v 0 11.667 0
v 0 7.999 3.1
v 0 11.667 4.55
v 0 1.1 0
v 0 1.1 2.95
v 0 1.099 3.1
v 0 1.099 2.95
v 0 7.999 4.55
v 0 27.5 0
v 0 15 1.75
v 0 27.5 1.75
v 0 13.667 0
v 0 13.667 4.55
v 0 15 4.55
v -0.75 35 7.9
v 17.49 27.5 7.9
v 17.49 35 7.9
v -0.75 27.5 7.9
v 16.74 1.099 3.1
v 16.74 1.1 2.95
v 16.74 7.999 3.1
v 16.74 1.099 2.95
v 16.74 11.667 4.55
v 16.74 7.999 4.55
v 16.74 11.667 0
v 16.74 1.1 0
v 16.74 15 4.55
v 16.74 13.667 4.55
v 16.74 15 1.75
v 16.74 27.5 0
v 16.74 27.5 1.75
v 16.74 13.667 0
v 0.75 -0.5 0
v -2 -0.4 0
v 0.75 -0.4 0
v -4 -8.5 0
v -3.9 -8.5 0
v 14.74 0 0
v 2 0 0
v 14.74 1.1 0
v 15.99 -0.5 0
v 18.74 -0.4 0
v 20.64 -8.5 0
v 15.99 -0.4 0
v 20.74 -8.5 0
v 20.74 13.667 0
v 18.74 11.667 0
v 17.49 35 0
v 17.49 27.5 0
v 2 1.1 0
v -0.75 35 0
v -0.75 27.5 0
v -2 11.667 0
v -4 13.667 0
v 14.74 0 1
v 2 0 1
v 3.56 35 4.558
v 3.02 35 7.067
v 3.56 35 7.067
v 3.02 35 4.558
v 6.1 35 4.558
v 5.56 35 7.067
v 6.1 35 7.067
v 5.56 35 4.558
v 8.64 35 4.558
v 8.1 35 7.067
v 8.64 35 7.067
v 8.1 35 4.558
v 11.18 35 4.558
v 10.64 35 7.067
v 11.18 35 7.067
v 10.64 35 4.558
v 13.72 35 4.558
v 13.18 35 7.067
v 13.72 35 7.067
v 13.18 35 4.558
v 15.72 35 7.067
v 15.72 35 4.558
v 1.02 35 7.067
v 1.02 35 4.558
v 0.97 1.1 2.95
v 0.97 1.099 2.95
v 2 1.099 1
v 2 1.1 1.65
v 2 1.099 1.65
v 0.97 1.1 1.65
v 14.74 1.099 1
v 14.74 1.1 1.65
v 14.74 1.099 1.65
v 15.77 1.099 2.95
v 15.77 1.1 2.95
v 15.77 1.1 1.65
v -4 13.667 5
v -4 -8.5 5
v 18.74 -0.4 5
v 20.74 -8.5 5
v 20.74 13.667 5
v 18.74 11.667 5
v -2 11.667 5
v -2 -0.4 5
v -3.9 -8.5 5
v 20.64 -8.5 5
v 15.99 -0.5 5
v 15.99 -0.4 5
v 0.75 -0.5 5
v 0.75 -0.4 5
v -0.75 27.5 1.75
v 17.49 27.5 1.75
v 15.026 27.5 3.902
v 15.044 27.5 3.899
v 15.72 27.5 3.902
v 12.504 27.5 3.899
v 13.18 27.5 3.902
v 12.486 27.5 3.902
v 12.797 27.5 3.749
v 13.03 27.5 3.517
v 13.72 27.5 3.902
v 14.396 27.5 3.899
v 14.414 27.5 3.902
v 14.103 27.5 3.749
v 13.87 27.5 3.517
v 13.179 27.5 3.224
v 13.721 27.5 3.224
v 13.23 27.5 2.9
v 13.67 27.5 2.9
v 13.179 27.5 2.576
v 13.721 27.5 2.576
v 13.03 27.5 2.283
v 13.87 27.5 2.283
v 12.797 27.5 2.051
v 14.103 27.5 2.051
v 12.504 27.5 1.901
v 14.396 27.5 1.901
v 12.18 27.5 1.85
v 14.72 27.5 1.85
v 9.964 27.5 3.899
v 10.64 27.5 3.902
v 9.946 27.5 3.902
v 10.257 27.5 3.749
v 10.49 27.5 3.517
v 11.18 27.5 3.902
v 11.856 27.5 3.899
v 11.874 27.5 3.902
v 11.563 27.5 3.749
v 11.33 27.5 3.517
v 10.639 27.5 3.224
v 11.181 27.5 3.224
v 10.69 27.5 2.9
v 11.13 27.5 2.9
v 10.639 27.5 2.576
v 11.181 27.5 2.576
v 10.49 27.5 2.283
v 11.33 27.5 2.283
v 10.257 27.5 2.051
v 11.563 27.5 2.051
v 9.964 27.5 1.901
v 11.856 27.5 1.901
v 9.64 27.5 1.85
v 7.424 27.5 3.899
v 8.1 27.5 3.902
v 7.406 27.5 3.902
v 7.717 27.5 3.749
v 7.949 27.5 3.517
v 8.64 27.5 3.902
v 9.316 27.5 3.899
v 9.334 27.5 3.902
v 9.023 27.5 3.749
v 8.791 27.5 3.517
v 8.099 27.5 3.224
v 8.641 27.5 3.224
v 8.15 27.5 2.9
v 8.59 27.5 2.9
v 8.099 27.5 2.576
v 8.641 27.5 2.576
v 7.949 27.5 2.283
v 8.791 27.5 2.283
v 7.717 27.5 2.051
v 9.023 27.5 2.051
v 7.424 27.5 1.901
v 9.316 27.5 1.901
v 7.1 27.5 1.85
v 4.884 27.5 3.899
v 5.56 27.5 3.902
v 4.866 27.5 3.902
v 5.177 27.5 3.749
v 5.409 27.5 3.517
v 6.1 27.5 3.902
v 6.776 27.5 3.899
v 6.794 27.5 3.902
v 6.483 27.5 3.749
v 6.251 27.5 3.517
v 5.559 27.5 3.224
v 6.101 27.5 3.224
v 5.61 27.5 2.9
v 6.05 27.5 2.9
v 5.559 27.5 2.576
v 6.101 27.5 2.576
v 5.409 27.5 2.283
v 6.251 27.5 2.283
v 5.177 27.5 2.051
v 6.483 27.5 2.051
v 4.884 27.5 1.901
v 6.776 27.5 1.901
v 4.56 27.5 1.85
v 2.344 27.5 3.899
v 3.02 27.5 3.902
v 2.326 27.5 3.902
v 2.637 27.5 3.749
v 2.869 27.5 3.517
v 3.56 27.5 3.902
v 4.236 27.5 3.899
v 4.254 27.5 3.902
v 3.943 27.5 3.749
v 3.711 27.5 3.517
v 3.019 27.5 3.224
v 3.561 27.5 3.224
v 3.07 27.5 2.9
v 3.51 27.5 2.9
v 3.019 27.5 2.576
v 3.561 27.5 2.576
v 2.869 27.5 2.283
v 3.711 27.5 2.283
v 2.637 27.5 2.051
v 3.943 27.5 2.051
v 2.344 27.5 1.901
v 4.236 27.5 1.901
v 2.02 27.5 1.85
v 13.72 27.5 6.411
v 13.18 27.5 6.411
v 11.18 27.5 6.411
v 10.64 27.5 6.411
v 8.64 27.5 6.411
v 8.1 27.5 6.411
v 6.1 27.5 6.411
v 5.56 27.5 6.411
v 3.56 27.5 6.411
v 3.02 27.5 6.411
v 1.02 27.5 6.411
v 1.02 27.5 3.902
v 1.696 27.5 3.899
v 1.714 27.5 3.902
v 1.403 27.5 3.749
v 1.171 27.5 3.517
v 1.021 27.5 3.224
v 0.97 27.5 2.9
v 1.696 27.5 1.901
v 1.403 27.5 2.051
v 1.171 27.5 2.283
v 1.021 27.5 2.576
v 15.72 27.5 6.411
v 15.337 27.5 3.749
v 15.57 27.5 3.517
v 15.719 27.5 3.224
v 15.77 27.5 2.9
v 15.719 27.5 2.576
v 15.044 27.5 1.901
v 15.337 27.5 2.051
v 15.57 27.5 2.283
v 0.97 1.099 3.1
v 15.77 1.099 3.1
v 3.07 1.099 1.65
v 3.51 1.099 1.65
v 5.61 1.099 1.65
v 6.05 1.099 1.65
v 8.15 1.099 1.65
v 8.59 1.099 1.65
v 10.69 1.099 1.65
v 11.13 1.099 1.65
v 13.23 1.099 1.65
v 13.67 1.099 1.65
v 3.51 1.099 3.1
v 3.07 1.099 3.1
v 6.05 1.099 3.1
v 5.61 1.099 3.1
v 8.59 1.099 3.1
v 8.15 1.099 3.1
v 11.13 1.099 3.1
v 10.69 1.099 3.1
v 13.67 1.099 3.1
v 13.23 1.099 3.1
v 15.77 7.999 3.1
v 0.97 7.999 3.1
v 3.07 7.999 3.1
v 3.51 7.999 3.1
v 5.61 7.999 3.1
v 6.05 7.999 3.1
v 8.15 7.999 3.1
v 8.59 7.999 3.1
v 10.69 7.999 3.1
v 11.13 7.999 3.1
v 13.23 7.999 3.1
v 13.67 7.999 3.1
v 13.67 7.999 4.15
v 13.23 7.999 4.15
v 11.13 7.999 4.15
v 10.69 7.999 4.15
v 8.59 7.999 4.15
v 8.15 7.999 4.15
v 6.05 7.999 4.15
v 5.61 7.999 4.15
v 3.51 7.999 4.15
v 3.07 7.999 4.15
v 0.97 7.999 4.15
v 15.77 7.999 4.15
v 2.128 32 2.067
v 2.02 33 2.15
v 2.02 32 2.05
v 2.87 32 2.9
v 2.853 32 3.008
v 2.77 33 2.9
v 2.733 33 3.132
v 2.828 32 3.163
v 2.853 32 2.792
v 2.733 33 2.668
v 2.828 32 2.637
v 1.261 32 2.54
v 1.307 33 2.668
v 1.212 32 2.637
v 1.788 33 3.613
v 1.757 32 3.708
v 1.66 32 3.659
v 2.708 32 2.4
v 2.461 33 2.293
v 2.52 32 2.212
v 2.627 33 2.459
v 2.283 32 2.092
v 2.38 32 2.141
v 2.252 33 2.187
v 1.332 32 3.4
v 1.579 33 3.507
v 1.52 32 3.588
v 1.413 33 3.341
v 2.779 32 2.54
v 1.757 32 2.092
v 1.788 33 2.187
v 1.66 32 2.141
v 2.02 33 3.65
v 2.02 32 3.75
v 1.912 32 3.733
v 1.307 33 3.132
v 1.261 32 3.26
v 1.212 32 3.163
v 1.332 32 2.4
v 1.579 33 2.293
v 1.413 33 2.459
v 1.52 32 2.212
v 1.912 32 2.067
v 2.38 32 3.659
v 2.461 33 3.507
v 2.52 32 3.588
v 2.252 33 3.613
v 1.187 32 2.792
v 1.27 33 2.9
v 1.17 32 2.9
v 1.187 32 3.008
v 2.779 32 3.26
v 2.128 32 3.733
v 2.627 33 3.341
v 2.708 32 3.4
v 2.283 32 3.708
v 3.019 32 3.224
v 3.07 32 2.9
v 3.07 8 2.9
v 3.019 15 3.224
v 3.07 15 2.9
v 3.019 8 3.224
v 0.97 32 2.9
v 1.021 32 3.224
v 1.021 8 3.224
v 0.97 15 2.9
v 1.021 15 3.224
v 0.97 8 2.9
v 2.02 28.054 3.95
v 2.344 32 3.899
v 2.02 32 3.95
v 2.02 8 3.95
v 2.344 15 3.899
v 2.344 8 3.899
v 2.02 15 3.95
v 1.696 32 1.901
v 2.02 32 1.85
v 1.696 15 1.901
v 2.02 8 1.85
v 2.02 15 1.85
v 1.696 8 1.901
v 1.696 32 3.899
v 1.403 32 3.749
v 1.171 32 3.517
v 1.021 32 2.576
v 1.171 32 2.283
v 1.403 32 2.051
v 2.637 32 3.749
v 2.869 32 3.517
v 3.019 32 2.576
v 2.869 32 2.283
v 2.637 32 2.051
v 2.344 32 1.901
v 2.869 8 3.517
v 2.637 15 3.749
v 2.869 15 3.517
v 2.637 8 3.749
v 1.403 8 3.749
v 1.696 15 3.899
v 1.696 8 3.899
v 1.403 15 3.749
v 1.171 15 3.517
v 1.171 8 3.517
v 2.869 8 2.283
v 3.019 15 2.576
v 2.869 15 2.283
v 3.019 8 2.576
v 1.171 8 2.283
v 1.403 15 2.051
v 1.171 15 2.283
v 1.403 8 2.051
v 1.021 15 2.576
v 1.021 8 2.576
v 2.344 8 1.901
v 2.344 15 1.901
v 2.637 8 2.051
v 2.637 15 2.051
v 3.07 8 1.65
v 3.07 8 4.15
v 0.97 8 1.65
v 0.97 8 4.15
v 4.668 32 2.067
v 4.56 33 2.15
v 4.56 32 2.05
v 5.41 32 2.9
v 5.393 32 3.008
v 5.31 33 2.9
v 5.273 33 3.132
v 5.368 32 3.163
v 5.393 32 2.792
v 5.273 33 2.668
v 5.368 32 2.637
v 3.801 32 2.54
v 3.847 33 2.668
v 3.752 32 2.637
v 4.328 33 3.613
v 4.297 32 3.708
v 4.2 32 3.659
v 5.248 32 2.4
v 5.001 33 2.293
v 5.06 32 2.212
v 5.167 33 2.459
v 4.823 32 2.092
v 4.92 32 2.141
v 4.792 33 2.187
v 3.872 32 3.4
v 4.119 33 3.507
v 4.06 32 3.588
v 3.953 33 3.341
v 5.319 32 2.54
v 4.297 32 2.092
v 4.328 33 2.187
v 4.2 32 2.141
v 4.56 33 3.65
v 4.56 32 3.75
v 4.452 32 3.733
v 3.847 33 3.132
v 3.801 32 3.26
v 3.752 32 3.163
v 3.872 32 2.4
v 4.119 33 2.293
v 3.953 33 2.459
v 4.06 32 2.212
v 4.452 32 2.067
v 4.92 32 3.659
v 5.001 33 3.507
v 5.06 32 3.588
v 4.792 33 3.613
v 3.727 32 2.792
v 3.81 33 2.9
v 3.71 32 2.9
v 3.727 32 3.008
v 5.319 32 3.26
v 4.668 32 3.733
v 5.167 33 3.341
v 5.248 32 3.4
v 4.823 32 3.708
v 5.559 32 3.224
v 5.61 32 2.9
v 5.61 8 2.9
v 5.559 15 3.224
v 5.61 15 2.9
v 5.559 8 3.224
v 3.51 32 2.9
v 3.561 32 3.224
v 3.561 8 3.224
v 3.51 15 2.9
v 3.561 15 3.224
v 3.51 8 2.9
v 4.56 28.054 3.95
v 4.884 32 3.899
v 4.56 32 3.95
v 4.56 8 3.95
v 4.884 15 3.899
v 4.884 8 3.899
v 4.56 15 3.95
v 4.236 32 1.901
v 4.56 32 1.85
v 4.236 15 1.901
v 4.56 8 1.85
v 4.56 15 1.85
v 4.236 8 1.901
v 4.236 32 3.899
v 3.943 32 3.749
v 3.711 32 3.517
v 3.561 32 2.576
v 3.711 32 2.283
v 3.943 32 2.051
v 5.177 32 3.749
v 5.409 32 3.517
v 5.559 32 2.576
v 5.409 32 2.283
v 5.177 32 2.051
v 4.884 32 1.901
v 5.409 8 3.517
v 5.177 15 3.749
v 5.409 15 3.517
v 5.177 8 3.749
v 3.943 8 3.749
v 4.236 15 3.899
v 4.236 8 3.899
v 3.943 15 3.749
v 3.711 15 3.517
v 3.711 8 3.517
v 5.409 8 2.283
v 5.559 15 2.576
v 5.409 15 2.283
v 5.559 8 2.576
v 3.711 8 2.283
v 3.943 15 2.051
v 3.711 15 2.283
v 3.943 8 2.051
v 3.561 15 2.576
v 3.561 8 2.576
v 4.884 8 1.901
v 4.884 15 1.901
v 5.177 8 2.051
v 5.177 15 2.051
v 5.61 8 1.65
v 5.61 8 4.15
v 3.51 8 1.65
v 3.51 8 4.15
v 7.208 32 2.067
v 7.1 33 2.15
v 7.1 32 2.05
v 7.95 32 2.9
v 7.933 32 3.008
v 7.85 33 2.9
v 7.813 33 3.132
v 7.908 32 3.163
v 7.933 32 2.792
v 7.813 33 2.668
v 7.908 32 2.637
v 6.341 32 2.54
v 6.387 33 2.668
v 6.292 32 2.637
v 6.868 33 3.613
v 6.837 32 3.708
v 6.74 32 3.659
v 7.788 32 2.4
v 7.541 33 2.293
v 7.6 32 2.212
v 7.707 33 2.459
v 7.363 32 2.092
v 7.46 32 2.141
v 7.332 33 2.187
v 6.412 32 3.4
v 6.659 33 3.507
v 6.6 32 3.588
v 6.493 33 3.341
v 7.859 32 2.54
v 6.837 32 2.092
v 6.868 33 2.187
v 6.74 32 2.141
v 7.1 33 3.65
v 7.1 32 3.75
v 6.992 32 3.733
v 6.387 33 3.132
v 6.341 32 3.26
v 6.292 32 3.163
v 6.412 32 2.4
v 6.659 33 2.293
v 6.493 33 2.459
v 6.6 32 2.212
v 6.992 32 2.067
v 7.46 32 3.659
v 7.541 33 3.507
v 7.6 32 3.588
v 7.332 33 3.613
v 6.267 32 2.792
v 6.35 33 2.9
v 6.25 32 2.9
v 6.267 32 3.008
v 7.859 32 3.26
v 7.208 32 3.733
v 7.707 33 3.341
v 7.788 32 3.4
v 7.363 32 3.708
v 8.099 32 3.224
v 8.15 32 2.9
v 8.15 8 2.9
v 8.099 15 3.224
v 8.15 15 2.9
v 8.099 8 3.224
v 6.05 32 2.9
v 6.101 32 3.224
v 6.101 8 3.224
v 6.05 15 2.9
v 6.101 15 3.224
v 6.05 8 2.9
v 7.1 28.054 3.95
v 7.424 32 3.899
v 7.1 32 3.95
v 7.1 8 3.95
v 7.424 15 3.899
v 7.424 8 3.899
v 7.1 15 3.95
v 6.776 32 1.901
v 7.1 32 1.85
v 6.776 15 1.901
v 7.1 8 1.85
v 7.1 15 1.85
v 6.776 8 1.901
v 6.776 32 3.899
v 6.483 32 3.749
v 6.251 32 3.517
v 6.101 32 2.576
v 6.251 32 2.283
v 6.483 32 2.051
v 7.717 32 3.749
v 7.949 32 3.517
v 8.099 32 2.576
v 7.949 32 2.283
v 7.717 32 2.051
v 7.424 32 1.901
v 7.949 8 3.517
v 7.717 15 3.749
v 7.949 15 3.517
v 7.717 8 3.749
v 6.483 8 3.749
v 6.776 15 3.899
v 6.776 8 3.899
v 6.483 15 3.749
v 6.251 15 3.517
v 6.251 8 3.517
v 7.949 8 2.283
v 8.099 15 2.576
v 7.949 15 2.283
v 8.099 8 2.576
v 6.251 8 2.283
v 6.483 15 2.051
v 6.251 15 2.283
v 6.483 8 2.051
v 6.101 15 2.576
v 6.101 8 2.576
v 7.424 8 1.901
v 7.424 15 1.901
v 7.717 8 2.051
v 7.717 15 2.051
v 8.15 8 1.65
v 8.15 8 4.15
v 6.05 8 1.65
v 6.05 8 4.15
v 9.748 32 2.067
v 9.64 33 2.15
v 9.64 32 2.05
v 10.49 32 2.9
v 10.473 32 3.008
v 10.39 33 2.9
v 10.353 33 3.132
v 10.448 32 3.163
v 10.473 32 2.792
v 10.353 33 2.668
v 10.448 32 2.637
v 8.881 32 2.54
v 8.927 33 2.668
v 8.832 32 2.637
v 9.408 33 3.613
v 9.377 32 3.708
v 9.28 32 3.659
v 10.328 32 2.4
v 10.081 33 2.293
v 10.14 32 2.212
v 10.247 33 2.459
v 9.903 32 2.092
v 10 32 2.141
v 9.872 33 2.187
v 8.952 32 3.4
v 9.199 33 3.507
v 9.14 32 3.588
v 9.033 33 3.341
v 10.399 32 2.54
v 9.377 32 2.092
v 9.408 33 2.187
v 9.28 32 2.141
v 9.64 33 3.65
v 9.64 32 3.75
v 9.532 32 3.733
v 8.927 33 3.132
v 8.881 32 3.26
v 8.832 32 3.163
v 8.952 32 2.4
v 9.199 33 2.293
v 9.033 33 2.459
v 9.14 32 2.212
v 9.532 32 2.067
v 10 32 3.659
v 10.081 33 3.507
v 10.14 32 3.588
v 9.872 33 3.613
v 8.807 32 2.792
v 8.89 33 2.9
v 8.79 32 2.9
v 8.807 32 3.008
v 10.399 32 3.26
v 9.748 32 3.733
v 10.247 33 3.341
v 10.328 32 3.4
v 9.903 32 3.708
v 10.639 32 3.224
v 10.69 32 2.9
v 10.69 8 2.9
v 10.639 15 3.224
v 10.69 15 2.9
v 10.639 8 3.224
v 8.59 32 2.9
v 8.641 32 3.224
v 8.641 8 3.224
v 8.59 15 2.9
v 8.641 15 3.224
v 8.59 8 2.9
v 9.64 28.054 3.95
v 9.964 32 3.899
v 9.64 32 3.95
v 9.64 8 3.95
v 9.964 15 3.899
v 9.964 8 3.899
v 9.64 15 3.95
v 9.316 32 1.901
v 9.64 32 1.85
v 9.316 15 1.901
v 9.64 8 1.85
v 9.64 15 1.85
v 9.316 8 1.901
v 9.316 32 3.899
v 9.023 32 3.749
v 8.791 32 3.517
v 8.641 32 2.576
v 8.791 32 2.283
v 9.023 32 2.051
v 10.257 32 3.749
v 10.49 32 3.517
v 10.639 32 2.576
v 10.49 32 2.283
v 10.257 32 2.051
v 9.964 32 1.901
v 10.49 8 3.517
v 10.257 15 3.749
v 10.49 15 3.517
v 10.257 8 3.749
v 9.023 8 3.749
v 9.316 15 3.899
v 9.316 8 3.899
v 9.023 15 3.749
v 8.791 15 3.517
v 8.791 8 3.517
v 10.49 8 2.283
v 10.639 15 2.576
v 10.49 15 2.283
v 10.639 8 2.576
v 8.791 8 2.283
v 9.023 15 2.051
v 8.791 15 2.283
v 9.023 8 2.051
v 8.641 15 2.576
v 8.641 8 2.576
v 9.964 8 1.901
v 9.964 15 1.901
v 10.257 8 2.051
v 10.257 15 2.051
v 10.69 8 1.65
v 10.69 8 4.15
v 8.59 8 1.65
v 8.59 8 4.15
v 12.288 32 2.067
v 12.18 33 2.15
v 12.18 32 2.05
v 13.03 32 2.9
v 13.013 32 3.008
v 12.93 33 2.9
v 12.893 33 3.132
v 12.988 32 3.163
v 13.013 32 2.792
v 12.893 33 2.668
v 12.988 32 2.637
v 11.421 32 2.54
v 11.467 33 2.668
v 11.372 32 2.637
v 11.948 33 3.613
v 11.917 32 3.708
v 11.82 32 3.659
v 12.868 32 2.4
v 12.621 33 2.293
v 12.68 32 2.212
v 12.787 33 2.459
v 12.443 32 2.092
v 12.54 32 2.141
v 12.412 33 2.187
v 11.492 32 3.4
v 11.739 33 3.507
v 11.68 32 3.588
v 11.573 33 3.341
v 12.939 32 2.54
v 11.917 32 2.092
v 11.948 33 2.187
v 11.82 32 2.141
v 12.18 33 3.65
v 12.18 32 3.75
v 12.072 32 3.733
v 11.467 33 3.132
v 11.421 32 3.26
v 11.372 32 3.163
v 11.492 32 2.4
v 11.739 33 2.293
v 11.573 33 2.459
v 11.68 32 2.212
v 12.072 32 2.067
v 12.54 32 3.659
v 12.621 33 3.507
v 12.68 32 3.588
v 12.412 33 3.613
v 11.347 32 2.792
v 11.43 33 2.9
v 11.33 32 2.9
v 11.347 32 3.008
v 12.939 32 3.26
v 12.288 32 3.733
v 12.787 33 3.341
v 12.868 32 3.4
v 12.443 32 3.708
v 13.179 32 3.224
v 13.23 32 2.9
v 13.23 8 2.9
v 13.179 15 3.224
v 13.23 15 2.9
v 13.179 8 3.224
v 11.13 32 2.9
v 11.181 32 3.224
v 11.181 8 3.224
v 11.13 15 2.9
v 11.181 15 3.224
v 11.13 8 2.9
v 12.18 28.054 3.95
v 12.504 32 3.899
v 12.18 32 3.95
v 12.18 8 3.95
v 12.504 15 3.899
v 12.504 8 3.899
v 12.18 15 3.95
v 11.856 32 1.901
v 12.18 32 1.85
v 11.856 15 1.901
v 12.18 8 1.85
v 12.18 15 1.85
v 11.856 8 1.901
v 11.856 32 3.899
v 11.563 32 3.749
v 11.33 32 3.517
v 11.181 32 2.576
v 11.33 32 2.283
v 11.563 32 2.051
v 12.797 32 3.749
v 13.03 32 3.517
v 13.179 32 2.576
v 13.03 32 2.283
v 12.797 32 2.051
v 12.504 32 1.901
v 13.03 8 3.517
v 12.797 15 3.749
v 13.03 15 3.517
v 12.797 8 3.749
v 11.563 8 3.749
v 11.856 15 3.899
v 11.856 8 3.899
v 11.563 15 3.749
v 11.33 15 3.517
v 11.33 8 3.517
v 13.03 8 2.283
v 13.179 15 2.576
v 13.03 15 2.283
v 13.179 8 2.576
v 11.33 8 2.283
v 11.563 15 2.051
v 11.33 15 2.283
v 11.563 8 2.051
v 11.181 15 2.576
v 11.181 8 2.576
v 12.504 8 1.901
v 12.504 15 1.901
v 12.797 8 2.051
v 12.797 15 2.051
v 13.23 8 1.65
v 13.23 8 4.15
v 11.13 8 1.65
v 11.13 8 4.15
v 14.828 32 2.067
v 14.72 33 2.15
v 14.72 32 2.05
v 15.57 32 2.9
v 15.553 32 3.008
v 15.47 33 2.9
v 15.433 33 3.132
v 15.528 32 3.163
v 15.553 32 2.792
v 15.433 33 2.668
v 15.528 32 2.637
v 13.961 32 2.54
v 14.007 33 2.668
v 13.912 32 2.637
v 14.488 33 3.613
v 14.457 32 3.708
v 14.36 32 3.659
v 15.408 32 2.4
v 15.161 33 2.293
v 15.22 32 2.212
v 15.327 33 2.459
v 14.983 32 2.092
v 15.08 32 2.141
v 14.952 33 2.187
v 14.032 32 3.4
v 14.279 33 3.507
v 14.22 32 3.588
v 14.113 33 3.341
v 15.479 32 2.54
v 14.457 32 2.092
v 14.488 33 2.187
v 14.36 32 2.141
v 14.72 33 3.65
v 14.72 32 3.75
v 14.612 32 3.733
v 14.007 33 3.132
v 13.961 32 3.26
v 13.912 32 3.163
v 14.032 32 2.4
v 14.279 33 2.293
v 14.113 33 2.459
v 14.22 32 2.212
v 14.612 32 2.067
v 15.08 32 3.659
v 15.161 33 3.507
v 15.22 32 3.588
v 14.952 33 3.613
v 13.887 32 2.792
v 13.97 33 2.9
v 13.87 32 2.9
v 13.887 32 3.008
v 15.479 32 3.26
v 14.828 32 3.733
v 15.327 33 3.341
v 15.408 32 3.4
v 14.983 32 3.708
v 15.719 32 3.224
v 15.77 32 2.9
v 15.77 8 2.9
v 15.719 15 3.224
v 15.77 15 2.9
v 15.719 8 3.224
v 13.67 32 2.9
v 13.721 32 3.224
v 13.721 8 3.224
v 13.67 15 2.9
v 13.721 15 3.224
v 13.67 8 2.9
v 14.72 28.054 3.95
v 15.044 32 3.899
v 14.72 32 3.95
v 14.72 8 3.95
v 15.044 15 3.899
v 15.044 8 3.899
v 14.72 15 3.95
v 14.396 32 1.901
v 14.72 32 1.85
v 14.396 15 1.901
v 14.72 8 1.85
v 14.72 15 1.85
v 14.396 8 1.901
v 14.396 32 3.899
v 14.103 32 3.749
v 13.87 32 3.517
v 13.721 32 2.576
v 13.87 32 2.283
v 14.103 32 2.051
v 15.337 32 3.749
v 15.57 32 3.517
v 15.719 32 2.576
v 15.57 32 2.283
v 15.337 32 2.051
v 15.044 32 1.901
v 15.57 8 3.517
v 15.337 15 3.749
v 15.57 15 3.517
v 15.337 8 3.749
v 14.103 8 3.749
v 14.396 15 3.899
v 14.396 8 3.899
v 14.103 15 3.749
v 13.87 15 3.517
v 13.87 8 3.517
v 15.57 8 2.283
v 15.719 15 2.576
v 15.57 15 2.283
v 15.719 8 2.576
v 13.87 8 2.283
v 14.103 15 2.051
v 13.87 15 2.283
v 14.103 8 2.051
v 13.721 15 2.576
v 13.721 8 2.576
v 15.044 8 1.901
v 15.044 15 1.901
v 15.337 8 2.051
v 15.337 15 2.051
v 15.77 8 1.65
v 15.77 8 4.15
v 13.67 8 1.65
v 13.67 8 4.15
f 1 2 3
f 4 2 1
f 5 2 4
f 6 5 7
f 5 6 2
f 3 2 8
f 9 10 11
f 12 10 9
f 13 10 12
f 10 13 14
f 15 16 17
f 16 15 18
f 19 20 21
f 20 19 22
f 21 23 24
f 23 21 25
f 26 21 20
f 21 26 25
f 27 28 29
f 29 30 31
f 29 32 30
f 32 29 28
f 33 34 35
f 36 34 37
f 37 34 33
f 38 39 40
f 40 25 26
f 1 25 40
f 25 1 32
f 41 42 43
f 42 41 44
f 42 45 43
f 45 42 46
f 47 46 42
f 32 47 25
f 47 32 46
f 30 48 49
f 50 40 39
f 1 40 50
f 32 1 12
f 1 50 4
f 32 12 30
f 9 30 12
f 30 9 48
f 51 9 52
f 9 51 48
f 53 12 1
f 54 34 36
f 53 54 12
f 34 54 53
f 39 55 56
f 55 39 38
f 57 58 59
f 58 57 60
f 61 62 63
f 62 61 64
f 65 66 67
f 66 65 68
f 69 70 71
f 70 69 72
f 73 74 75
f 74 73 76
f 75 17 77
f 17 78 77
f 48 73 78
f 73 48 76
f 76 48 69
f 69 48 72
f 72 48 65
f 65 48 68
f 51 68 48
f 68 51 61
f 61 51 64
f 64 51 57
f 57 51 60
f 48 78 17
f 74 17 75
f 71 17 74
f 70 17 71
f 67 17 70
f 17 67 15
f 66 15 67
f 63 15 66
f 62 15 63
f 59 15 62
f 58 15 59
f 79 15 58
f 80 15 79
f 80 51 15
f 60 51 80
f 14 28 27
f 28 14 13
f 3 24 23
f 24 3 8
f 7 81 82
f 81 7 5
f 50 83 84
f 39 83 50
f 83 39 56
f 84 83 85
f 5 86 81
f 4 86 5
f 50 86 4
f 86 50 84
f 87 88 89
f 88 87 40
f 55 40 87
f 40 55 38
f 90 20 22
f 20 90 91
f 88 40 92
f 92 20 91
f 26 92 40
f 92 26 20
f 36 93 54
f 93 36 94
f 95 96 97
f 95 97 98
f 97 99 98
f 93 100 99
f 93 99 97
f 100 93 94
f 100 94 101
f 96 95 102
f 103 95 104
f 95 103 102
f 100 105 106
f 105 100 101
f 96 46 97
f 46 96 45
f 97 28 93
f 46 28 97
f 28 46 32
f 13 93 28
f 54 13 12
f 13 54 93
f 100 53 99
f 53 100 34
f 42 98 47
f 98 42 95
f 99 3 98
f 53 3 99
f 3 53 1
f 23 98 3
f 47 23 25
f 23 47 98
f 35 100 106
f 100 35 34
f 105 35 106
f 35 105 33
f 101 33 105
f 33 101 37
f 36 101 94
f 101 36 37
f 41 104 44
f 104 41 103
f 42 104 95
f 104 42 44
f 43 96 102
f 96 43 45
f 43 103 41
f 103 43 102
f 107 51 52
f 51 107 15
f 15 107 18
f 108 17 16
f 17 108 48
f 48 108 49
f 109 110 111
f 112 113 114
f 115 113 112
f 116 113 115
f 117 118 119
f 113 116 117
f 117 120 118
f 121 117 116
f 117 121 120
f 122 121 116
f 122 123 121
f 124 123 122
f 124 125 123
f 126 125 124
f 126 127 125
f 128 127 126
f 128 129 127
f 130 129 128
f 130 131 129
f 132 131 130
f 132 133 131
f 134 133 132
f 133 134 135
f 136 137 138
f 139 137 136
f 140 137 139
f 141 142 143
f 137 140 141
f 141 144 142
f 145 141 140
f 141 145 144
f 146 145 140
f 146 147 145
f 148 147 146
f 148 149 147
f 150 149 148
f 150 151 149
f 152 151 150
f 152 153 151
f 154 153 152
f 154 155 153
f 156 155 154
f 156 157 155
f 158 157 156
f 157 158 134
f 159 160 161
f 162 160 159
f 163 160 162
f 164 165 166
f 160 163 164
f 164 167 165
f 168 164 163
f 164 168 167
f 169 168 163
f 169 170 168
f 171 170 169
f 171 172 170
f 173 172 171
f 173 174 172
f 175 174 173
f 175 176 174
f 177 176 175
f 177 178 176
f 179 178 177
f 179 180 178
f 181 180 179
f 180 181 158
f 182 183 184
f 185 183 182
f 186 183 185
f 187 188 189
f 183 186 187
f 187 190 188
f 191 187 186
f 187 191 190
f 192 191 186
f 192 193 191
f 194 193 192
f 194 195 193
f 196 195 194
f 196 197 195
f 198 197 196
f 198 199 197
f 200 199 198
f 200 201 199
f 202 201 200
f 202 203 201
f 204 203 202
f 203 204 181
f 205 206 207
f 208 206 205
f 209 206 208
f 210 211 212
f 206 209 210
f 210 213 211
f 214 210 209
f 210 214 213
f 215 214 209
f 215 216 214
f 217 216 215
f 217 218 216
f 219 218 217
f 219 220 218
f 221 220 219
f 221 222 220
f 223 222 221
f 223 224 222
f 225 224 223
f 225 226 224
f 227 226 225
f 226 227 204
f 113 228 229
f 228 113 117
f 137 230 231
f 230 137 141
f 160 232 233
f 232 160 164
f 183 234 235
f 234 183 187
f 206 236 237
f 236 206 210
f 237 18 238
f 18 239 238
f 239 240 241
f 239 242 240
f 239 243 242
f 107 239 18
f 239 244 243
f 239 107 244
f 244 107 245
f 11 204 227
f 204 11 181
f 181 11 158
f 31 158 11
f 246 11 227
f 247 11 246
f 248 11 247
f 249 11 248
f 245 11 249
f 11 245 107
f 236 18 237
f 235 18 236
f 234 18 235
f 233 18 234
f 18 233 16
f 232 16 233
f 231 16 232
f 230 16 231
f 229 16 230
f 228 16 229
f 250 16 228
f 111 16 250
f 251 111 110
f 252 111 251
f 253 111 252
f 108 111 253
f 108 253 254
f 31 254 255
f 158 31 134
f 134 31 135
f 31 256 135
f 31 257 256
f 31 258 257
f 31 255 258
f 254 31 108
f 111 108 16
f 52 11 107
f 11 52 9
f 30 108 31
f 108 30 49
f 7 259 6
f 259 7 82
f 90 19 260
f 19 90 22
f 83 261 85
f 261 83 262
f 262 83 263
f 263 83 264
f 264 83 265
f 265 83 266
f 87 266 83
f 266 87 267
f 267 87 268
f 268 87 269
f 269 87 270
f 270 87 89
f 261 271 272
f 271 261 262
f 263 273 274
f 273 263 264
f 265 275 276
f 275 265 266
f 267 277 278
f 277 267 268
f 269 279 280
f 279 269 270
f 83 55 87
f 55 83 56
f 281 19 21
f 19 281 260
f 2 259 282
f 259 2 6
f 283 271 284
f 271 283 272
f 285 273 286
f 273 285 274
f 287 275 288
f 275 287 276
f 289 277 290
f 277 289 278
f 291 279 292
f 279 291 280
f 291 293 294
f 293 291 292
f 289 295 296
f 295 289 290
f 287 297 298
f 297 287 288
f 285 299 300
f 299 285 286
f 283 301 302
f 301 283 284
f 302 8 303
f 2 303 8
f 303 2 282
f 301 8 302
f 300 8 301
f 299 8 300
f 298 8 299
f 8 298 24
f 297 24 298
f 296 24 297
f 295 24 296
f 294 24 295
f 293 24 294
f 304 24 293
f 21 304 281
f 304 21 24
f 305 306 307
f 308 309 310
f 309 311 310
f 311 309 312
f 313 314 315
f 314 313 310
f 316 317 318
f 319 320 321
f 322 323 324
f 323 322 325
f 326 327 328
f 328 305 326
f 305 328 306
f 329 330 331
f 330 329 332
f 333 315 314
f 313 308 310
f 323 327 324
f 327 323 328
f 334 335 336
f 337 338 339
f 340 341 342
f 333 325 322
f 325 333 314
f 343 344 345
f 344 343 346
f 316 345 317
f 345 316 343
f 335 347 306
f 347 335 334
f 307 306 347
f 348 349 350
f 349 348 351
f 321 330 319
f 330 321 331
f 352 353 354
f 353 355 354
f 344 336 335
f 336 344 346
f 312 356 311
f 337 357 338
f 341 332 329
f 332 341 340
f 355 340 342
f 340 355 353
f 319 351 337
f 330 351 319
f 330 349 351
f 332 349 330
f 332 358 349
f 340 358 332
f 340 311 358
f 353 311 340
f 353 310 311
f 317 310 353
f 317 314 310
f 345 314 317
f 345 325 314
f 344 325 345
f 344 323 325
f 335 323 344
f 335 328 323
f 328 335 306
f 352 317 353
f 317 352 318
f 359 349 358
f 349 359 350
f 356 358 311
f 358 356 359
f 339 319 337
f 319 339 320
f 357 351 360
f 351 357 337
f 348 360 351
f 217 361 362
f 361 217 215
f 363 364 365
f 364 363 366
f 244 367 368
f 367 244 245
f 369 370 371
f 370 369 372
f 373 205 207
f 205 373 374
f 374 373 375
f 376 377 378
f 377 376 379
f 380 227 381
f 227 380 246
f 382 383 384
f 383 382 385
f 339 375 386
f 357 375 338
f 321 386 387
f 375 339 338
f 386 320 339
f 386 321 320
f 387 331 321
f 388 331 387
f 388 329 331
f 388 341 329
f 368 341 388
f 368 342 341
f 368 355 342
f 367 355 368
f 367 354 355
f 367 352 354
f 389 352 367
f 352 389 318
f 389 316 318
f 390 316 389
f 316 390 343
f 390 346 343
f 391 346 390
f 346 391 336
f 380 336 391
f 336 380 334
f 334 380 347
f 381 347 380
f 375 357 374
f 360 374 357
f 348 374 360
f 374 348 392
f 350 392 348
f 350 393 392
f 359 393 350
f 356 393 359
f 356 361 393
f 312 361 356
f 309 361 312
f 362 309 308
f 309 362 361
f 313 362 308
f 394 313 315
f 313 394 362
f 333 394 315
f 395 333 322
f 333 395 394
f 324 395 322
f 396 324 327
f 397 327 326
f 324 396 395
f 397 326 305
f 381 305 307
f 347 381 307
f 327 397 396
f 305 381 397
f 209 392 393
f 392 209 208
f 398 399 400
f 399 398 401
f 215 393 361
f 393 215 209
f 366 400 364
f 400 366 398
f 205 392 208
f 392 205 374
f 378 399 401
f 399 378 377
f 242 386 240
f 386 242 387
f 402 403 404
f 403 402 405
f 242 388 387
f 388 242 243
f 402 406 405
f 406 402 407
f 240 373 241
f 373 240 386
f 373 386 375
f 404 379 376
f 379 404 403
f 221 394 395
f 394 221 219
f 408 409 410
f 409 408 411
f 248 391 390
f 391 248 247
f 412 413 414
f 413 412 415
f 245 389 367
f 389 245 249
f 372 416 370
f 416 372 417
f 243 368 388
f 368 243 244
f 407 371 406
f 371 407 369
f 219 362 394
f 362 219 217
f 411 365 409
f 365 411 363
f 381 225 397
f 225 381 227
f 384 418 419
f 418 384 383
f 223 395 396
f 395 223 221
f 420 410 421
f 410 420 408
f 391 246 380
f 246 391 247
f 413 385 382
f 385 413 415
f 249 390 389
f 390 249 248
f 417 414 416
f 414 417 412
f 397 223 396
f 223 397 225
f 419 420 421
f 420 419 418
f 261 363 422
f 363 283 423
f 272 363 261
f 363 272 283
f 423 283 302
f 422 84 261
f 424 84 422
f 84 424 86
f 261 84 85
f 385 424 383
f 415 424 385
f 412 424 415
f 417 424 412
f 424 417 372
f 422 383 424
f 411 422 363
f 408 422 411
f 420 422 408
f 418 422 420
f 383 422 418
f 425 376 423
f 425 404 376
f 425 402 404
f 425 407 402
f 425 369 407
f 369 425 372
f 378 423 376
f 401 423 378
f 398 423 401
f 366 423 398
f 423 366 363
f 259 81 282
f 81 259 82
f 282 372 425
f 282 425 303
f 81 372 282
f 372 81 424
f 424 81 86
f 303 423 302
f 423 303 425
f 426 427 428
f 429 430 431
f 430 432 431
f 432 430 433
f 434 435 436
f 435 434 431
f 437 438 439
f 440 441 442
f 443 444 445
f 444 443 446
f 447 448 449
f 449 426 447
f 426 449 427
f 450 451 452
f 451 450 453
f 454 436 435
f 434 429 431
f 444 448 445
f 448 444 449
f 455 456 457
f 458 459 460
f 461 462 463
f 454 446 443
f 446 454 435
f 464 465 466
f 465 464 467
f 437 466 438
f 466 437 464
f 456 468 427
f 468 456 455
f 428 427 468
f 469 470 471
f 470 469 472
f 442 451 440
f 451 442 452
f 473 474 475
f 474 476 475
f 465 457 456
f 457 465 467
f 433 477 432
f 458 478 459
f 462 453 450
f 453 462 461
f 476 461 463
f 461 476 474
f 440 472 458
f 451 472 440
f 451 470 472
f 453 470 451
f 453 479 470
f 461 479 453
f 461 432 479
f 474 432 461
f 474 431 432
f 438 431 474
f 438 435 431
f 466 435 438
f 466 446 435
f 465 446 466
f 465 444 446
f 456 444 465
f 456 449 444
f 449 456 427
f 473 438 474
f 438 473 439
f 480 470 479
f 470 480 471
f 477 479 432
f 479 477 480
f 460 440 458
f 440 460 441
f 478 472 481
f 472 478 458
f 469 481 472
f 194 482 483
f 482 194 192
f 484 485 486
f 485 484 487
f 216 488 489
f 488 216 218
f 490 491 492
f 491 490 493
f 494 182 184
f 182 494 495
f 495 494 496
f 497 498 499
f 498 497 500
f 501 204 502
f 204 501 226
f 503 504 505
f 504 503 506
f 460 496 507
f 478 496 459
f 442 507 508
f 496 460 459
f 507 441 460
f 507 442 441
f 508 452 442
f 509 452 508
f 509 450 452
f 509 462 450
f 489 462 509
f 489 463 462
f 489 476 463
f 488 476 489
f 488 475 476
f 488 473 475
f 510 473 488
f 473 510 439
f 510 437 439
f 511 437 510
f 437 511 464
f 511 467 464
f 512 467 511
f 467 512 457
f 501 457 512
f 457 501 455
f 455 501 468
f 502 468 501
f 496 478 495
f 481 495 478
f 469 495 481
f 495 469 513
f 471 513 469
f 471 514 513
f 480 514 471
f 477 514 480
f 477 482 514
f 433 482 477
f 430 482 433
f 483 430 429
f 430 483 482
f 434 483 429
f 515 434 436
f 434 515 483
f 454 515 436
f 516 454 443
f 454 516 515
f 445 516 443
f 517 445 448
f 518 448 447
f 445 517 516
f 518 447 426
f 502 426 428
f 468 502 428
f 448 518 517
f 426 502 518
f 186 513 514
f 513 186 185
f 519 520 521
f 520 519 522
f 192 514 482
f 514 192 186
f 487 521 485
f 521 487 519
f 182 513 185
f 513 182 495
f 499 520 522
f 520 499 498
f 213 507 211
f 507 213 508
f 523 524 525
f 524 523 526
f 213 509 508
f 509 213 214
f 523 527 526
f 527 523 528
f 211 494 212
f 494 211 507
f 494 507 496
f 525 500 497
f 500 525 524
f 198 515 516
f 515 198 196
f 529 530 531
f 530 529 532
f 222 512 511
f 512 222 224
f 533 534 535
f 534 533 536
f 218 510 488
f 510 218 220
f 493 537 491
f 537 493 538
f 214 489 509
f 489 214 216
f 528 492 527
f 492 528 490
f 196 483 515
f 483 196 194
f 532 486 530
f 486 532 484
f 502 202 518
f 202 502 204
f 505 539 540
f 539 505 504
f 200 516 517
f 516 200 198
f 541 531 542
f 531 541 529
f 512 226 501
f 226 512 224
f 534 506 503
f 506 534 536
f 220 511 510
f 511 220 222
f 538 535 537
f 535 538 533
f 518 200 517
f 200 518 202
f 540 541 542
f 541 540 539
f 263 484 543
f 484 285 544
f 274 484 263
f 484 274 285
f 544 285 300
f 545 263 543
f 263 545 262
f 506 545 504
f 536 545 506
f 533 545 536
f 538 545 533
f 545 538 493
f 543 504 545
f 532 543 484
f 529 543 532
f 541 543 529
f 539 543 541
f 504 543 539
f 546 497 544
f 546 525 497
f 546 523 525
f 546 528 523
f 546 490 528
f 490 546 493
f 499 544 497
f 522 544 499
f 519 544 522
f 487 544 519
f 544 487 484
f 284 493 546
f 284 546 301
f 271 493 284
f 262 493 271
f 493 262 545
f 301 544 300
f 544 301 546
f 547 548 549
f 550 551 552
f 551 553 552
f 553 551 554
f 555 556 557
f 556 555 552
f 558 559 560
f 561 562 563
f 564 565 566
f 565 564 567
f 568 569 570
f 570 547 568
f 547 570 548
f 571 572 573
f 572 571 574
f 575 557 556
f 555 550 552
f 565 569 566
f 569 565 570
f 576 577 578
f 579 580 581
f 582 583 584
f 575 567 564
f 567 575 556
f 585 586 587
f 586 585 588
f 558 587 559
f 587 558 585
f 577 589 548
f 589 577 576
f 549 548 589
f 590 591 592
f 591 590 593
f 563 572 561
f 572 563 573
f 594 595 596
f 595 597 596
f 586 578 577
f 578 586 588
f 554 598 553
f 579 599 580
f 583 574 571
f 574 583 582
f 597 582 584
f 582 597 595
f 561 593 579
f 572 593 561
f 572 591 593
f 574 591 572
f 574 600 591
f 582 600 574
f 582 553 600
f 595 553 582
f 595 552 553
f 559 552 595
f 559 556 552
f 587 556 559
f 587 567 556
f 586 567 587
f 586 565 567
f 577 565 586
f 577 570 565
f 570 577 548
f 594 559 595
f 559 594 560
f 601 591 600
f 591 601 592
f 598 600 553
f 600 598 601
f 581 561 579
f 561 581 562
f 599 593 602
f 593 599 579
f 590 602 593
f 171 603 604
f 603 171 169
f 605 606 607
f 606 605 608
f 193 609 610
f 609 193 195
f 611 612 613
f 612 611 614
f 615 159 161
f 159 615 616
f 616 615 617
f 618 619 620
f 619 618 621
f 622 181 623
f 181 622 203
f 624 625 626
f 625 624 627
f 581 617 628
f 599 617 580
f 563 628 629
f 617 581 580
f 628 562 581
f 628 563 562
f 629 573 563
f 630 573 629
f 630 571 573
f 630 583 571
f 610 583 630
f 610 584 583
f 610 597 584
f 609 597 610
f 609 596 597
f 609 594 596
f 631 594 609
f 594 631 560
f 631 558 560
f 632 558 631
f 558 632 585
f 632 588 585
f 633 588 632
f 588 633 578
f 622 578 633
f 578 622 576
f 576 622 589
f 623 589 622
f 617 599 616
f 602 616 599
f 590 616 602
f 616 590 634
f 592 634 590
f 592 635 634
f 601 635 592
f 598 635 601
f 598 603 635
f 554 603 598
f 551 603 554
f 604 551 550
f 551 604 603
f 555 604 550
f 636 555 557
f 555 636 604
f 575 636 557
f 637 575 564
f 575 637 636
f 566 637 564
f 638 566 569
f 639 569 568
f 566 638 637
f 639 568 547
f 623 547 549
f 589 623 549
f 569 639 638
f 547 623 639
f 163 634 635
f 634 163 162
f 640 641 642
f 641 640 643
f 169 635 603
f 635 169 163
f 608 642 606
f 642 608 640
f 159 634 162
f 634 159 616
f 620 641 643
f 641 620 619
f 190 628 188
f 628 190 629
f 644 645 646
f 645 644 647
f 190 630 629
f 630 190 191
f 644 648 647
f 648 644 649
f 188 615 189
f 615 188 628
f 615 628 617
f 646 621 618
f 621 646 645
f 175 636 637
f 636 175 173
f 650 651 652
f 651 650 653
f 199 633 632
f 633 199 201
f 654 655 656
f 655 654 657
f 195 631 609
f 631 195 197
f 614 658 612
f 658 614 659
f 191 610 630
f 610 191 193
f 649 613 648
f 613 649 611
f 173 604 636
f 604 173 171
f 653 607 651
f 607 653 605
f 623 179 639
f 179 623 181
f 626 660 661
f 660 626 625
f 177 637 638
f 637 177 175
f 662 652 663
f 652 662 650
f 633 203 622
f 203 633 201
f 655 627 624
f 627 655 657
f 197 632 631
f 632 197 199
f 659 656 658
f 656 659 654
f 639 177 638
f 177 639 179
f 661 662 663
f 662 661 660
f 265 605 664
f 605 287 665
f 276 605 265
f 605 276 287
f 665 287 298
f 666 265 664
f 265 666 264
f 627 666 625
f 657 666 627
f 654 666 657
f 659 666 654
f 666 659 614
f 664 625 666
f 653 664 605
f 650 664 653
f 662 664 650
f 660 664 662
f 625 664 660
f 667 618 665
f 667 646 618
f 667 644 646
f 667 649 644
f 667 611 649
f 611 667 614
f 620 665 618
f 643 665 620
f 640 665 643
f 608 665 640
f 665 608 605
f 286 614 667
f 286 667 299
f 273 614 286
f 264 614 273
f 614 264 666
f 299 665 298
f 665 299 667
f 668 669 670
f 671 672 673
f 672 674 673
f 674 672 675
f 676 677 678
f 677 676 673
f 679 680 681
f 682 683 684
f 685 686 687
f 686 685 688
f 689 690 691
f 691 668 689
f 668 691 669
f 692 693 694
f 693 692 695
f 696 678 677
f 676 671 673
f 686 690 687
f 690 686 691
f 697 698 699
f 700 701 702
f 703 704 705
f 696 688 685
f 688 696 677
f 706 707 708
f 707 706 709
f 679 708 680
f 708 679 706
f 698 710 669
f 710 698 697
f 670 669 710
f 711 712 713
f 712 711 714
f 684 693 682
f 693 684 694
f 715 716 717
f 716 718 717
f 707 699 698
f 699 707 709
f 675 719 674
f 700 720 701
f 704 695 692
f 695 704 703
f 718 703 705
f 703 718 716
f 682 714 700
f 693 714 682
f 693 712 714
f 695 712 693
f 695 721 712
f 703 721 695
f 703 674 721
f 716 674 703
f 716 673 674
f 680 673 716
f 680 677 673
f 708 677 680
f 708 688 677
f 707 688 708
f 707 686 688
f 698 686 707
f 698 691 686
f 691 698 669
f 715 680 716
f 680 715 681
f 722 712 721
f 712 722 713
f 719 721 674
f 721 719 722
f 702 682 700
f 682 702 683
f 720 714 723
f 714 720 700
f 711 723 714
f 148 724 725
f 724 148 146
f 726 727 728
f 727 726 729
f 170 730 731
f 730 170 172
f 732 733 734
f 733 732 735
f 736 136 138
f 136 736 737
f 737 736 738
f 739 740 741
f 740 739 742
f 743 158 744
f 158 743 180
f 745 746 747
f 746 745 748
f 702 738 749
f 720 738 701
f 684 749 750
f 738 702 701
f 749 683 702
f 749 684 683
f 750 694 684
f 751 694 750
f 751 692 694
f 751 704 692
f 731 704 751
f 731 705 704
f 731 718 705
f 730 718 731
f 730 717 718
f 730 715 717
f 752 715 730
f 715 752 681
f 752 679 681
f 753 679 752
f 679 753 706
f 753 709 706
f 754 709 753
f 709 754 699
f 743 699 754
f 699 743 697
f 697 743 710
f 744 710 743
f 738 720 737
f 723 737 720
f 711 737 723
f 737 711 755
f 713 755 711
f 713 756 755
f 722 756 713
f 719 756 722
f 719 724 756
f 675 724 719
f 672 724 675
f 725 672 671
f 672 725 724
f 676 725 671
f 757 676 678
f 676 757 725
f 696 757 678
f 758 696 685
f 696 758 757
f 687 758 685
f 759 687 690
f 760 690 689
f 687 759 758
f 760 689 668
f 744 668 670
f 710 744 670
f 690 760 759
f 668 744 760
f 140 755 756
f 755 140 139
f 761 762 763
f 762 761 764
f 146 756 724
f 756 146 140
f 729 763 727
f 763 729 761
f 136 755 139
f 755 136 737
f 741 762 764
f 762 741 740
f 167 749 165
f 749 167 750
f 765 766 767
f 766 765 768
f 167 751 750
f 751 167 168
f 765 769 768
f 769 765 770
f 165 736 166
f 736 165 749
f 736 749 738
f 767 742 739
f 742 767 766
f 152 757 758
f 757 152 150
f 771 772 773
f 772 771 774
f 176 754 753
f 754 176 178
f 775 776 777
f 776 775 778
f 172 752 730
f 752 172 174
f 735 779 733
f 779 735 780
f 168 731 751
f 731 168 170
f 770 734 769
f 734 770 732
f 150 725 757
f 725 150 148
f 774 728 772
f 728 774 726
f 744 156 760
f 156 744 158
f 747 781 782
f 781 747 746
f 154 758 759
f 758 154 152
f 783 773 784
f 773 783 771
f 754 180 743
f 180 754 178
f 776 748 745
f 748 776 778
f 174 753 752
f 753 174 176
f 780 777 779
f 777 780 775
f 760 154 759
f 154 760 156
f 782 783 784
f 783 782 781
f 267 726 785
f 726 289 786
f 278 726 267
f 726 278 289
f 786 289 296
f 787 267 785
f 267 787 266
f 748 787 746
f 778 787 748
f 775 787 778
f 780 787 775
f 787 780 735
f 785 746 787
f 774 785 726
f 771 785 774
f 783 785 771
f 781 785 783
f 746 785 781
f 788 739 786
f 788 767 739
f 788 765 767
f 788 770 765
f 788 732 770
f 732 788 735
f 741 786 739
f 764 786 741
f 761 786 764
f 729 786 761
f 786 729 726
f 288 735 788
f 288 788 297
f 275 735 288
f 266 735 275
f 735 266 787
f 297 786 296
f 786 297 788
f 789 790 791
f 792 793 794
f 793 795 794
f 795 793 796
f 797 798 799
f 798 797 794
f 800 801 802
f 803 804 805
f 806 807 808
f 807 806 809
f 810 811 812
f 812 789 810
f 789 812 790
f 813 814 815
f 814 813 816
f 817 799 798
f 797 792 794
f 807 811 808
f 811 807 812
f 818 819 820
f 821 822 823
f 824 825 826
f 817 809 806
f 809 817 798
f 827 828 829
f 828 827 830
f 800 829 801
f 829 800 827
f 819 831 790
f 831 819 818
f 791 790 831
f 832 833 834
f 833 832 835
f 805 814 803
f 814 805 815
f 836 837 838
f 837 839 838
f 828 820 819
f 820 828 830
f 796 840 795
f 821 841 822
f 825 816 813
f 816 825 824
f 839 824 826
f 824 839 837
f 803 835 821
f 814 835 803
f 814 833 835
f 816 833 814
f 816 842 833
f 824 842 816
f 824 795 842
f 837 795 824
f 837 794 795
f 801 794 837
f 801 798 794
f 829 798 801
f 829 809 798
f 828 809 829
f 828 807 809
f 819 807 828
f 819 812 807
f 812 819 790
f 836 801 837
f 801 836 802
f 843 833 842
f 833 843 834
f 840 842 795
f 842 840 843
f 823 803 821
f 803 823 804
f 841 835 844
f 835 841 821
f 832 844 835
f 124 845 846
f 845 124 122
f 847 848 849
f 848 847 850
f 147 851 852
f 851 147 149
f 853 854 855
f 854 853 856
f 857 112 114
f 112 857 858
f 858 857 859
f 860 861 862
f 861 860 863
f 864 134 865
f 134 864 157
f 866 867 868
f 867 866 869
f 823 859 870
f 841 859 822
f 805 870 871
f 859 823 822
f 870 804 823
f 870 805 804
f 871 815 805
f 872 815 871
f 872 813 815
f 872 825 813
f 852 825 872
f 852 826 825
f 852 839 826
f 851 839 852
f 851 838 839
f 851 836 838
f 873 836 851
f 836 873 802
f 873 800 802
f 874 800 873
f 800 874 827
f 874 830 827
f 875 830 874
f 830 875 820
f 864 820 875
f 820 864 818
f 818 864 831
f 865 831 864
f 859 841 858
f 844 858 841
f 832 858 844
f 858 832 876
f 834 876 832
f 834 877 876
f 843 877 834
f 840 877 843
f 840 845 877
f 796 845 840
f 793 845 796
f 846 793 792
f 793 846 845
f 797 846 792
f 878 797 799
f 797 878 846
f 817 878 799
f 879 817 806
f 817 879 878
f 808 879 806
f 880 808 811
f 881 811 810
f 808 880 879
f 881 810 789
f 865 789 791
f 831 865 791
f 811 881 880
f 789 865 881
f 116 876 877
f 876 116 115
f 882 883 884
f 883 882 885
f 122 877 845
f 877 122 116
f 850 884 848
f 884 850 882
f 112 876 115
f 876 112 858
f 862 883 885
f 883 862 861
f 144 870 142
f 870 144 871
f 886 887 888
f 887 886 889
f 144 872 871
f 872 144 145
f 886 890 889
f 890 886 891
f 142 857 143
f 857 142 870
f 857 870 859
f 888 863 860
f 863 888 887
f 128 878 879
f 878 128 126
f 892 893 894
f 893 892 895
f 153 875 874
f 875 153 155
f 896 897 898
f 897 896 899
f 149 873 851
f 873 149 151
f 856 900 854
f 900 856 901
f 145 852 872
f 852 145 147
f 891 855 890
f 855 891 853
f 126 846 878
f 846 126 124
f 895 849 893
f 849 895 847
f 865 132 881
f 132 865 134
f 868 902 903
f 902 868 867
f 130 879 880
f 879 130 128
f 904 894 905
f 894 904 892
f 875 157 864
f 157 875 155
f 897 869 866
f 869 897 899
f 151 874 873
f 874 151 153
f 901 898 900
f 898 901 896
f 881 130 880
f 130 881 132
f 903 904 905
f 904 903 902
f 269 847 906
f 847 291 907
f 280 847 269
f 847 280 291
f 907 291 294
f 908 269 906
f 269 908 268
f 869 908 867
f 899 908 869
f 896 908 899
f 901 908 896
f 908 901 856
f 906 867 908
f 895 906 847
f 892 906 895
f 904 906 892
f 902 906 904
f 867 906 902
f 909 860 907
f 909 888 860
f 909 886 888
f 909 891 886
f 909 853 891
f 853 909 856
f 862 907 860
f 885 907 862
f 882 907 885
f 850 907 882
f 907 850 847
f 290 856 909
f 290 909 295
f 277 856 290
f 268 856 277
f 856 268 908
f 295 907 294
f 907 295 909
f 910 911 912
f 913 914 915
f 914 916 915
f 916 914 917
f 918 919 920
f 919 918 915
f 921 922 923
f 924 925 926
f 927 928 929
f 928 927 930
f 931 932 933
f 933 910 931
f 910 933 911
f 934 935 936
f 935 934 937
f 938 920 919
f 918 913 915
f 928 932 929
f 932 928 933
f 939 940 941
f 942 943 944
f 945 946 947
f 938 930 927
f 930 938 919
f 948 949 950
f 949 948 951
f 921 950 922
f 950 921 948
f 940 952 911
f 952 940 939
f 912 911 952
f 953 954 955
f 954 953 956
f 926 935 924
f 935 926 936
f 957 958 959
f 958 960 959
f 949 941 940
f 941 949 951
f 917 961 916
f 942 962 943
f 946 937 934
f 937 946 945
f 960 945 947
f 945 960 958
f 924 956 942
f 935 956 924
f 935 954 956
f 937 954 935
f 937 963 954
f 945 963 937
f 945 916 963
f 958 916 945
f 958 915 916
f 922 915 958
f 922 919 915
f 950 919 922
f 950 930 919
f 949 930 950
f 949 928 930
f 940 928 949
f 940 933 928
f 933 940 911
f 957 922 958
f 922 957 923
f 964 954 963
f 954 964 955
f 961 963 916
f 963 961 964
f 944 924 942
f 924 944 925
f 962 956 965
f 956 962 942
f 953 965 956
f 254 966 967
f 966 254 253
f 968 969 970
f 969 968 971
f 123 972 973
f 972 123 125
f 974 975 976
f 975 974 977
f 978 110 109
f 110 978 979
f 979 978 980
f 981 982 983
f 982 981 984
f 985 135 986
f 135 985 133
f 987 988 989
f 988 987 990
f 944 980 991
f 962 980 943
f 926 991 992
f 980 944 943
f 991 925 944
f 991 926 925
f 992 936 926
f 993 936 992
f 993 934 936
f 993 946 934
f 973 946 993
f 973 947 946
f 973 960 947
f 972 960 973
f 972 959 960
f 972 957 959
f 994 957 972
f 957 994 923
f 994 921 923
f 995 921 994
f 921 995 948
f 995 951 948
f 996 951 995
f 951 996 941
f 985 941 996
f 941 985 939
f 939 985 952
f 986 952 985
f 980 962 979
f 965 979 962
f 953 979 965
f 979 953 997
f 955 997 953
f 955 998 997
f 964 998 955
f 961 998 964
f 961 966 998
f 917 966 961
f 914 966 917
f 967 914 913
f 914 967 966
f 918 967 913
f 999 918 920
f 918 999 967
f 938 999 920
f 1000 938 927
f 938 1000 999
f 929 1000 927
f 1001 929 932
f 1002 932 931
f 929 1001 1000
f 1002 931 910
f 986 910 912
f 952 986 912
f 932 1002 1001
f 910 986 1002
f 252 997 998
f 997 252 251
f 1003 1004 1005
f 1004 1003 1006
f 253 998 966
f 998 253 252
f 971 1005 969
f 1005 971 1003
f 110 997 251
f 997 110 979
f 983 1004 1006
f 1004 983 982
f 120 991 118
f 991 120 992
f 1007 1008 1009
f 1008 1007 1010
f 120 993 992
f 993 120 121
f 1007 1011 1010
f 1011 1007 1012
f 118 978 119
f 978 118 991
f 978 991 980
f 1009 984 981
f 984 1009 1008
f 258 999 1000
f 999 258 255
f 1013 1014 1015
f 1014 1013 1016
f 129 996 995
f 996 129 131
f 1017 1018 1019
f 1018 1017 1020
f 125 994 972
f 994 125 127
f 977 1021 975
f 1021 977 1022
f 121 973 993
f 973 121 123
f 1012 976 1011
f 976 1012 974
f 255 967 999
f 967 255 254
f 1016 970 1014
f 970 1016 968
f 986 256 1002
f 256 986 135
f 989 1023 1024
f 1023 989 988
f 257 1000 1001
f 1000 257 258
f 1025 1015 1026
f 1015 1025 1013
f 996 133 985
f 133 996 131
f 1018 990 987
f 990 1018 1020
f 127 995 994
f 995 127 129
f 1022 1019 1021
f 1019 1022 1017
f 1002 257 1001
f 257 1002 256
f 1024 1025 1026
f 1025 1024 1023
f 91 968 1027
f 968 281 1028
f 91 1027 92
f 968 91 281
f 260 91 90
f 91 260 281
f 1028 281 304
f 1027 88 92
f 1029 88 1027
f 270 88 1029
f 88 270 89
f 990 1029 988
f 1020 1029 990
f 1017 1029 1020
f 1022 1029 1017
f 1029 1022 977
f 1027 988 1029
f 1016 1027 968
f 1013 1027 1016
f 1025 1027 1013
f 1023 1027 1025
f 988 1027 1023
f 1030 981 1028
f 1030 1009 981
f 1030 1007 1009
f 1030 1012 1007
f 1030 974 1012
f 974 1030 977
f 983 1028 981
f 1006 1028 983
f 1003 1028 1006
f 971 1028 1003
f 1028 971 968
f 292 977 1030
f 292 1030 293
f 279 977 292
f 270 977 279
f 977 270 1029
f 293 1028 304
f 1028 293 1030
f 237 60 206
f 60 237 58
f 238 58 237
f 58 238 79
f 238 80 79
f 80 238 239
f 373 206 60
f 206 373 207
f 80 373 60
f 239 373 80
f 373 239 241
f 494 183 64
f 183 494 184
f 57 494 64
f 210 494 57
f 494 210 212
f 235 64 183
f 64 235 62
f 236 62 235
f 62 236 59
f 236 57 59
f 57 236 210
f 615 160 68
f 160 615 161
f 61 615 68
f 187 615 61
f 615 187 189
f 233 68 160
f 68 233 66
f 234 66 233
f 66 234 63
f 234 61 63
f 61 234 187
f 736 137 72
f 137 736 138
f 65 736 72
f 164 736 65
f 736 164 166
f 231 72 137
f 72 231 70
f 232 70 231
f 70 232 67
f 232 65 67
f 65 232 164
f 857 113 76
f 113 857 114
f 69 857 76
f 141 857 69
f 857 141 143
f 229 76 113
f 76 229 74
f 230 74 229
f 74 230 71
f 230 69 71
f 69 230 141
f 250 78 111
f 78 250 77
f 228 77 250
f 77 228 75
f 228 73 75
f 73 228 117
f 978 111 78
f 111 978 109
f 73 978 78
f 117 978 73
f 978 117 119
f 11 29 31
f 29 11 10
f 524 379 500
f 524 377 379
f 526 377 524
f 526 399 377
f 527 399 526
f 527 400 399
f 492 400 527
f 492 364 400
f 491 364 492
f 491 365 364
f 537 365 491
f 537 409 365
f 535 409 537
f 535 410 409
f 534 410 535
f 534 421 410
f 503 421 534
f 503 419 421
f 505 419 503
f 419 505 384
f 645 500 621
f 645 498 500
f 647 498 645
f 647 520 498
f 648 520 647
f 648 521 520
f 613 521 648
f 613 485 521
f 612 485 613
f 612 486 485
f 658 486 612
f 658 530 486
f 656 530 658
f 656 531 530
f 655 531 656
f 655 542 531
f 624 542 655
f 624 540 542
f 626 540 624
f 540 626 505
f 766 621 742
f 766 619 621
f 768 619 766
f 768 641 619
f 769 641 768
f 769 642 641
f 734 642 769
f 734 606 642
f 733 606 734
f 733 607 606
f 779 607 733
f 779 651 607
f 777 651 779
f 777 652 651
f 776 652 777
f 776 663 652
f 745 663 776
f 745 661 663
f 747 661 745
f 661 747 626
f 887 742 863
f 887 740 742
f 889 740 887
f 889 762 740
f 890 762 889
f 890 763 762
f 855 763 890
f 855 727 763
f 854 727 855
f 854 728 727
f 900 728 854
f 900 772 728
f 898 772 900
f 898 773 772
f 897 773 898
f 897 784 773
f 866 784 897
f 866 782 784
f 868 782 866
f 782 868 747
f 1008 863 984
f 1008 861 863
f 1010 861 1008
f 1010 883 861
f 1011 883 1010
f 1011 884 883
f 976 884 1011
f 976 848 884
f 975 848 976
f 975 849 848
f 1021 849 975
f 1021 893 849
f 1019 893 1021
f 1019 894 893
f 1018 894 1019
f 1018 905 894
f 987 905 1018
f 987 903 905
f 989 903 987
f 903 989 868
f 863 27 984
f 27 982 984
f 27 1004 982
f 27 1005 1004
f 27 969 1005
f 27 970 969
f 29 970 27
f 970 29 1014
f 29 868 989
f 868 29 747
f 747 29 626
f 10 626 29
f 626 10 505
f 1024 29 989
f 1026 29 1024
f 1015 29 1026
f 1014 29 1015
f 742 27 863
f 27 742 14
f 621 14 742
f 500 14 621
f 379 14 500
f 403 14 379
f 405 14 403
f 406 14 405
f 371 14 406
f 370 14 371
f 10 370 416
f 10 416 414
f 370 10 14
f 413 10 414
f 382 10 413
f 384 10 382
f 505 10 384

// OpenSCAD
$fn=20;
/*
  Edge Header Programmer Jig Via Probes (e.g. OpenLog Clone)
  Author: Brian Khuu 2019
  
  This is originally designed for connecting to OpenLog Clones
  
  I used P100-E2 probes for this
*/

// Designed For Printer Nozzle
printer_nozzle=0.4;

// Base Thickness
base_thickness = 1;

/* probe pin spec */
ppext = 8; // Probe extention length
ppbody = 25; // Body of the probe
ppdia = 1.5; // probe pin diameter

ppdiatol = 0.6; // tolerance for fitting
ppinset = 0;

ppdiaoutset = ppext-ppinset; // How far to space out to allow for side fits
echo(ppdiaoutset);

/* Castellated Module Pin Spacing and count */

// Pin Count
ppc = 6;

// Pin Spacing
pps = 2.54;

// PCB Thickness
pcb_thickness = 1.1; // 1mm Open Log Clone

// PCB Probe Offset
pcb_probe_offset = 1.3;

/* Clip */
clip_tab = 5; // Clip tab to more easily open the clip

/* pcb */
pcb_h = 2; // pcb thickness

/* calc */
boxx = ppc * pps + ppdia;
boxy = 2 + ppbody + ppdiaoutset;
boxh = base_thickness+pcb_probe_offset+ppdiatol+5;

module probe_pin_req()
{
  inset=0;
  translate([0,0,-ppbody])
  union()
  {
    translate([0,0,0])
      cylinder(r1=(ppdia)/2,r2=(ppdia+ppdiatol)/2, h=3);
    translate([0,0,1])
      cylinder(r=(ppdia+ppdiatol)/2, h=ppbody+ppext+1);
    %color("gold") cylinder(r=ppdia/2, h=ppbody);
    %color("silver") translate([0,0,ppbody])
      cylinder(r=ppdia/2, r2=0, h=ppext);
  }
}

module openlog_clone_programmer_jig_clip()
{
  grip_gap=2;
  grip_thickness=printer_nozzle*5;
  grip_height=5;
  difference() 
  {
    translate([-grip_gap-grip_thickness,-1,0])
      cube([boxx+grip_gap*2+grip_thickness*2,boxy/3+3,grip_height]);
    translate([-grip_gap,-2,-1])
      cube([boxx+grip_gap*2,boxy/3+2,grip_height+2]);
  }
  translate([-(grip_thickness*2+grip_gap*2)/2,-0.5,0])
    hull()
    {
      translate([0,0,0])
        cube([(grip_thickness+grip_gap+ppdia/2),0.1,grip_height]);
      translate([0,-8,0])
        cube([0.1,0.1,grip_height]);
    }
  translate([(grip_thickness*2+grip_gap*2)/2+boxx,-0.5,0])
    hull()
    {
      translate([-(grip_thickness+grip_gap+ppdia/2),0,0])
        cube([(grip_thickness+grip_gap+ppdia/2),0.1,grip_height]);
      translate([-0.1,-8,0])
        cube([0.1,0.1,grip_height]);
    }
}

module openlog_clone_programmer_jig()
{
  difference()
  {  
    /* Bulk */
    union()
    {
      difference()
      {
        cube([boxx,boxy,boxh]);
        translate([-5, 0, base_thickness+pcb_probe_offset+ppdia*1.5]) 
          cube([ppc * pps+10,ppbody, 5]);
        translate([0,0,-1])
          cube([4,pcb_thickness*2,boxh],center=true);
        translate([boxx,0,-1])
          cube([4,pcb_thickness*2,boxh],center=true);
      }
      translate([-(ppdia)/2, ppdiaoutset+7+ppbody/2, 0]) 
        cube([boxx+(ppdia),boxy-(ppdiaoutset+7+ppbody/2), boxh]);
      openlog_clone_programmer_jig_clip();
    }

    /* Probe Access Cutout */
    translate([-5, ppdiaoutset+7, base_thickness+ppdia/2]) 
      cube([ppc * pps+10,ppbody/2, 10]);
      
    /* Module Cutout */
    translate([0, -0.001, 0]) 
      union()
      {     
        translate([0, 0,base_thickness]) 
          cube([boxx,pcb_thickness, boxh]);   
        translate([0, 0, base_thickness+ppdia+ppdiatol]) 
          cube([boxx,ppdiaoutset, boxh]);
      }
      
    /* Probe */
    for ( xi = [0 : 1 : ppc-1] )
    {
      translate([ppdia/2+pps/2+pps*xi, 0, base_thickness])
      union()
      {
        translate([0, ppdiaoutset, pcb_probe_offset+ppdiatol])
          rotate([90,0,0])
          probe_pin_req();
        
        translate([0, ppdiaoutset, pcb_probe_offset+ppdiatol])
          rotate([180,0,0])
            translate([0, (ppdiaoutset)/2, 0])
              cube([ppdia+ppdiatol,(ppdiaoutset),ppdia+1], center=true);
      }
    }
    
    /* Wire Guide (To solder onto the probe) */
    for ( xii = [0 : 1 : ppc-1] )
    {
      translate([ppdia/2+pps/2+pps*xii, boxy+1, base_thickness+ppdia+1.5+pcb_probe_offset+ppdiatol])
        rotate([95,0,0])
          cube([2,2.5,20],center=true);
    }
  }
}

openlog_clone_programmer_jig();
